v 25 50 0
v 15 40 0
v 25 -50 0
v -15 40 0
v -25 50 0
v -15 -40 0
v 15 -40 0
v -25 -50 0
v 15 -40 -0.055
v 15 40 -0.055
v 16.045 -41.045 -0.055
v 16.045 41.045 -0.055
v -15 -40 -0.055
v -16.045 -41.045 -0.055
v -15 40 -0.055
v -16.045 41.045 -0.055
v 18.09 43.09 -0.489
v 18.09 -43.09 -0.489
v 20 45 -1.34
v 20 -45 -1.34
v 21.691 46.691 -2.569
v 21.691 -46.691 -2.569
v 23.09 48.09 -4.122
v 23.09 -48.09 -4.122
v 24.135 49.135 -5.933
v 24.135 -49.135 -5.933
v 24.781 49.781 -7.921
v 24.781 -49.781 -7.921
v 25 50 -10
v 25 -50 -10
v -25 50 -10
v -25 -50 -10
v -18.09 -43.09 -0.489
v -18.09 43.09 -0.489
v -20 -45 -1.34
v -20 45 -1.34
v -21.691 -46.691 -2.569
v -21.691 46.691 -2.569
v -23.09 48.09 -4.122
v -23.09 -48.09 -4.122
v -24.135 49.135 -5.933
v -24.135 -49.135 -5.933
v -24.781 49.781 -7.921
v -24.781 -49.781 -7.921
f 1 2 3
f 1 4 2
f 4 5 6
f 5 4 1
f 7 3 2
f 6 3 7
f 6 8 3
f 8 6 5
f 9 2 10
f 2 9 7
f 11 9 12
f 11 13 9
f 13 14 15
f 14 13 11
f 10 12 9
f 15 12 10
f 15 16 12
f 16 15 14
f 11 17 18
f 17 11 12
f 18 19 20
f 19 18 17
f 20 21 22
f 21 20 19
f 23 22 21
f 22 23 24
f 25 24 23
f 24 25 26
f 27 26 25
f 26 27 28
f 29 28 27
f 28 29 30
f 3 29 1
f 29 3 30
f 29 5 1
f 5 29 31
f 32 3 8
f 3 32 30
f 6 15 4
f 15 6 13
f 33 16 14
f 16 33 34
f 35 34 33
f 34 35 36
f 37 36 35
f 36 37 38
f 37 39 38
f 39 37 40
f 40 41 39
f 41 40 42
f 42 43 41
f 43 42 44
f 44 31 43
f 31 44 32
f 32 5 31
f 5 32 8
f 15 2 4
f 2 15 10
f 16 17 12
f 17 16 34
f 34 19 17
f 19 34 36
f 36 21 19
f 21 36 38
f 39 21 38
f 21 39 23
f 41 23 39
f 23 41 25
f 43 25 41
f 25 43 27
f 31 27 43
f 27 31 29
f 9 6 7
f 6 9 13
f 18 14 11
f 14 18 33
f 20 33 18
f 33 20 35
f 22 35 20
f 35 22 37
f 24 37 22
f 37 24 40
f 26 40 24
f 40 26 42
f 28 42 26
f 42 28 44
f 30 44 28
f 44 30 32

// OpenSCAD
function _v0() = true;
function _v1() = [10,10];
module _v2() { square(center=_v0(), size=_v1()); }
function _v3() = 10;
module _v4() { circle(r=_v3()); }
module _v5 (y=undef) { translate([0, -y, 0]) children(); }
function _v6() = 5;
module _v7() { _v5(y=_v6()) children(); }
module _v8() { _v7() _v4(); }
module _v9 (x=undef) { translate([-x, 0, 0]) children(); }
module _v10() { _v9(x=_v6()) children(); }
module _v11() { _v10() _v8(); }
module _v12() { difference() { _v2(); _v11(); }; }
function _v13() = [10,0.01];
module _v14() { square(center=_v0(), size=_v13()); }
module _v15 (y=undef) { translate([0, y, 0]) children(); }
module _v16() { _v15(y=_v6()) children(); }
module _v17() { _v16() _v14(); }
function _v18() = [0.01,10];
module _v19() { square(center=_v0(), size=_v18()); }
module _v20 (x=undef) { translate([x, 0, 0]) children(); }
module _v21() { _v20(x=_v6()) children(); }
module _v22() { _v21() _v19(); }
module _v23() { union() { _v17(); _v22(); }; }
module _v24 () { if($preview) { children(); } }
module _v25() { _v24() _v23(); }
module _v26() { union() { _v12(); _v25(); }; }
module _v27() { _v7() _v26(); }
module _v28() { _v10() _v27(); }
function _v29() = 100;
module _v30() { linear_extrude(center=_v0(), height=_v29()) children(); }
module _v31() { _v30() _v28(); }
module _v32 (a=0) { rotate([a, 0, 0]) children(); }
function _v33() = 90;
module _v34() { _v32(a=_v33()) children(); }
module _v35() { _v34() _v31(); }
function _v36() = 25;
module _v37() { _v20(x=_v36()) children(); }
module _v38() { _v37() _v35(); }
function _v39() = [1,0,0];
module _v40() { mirror(v=_v39()) children(); }
module _v41() { _v40() _v38(); }
module _v42() { union() { _v38(); _v41(); }; }
function _v43() = 50;
module _v44() { linear_extrude(center=_v0(), height=_v43()) children(); }
module _v45() { _v44() _v28(); }
function _v46() = [90,0,90];
module _v47() { rotate(a=_v46()) children(); }
module _v48() { _v47() _v45(); }
module _v49() { _v15(y=_v43()) children(); }
module _v50() { _v49() _v48(); }
module _v51() { union() { _v42(); _v50(); }; }
function _v52() = [0,1,0];
module _v53() { mirror(v=_v52()) children(); }
module _v54() { _v53() _v50(); }
module _v55() { union() { _v51(); _v54(); }; }

_v55();
